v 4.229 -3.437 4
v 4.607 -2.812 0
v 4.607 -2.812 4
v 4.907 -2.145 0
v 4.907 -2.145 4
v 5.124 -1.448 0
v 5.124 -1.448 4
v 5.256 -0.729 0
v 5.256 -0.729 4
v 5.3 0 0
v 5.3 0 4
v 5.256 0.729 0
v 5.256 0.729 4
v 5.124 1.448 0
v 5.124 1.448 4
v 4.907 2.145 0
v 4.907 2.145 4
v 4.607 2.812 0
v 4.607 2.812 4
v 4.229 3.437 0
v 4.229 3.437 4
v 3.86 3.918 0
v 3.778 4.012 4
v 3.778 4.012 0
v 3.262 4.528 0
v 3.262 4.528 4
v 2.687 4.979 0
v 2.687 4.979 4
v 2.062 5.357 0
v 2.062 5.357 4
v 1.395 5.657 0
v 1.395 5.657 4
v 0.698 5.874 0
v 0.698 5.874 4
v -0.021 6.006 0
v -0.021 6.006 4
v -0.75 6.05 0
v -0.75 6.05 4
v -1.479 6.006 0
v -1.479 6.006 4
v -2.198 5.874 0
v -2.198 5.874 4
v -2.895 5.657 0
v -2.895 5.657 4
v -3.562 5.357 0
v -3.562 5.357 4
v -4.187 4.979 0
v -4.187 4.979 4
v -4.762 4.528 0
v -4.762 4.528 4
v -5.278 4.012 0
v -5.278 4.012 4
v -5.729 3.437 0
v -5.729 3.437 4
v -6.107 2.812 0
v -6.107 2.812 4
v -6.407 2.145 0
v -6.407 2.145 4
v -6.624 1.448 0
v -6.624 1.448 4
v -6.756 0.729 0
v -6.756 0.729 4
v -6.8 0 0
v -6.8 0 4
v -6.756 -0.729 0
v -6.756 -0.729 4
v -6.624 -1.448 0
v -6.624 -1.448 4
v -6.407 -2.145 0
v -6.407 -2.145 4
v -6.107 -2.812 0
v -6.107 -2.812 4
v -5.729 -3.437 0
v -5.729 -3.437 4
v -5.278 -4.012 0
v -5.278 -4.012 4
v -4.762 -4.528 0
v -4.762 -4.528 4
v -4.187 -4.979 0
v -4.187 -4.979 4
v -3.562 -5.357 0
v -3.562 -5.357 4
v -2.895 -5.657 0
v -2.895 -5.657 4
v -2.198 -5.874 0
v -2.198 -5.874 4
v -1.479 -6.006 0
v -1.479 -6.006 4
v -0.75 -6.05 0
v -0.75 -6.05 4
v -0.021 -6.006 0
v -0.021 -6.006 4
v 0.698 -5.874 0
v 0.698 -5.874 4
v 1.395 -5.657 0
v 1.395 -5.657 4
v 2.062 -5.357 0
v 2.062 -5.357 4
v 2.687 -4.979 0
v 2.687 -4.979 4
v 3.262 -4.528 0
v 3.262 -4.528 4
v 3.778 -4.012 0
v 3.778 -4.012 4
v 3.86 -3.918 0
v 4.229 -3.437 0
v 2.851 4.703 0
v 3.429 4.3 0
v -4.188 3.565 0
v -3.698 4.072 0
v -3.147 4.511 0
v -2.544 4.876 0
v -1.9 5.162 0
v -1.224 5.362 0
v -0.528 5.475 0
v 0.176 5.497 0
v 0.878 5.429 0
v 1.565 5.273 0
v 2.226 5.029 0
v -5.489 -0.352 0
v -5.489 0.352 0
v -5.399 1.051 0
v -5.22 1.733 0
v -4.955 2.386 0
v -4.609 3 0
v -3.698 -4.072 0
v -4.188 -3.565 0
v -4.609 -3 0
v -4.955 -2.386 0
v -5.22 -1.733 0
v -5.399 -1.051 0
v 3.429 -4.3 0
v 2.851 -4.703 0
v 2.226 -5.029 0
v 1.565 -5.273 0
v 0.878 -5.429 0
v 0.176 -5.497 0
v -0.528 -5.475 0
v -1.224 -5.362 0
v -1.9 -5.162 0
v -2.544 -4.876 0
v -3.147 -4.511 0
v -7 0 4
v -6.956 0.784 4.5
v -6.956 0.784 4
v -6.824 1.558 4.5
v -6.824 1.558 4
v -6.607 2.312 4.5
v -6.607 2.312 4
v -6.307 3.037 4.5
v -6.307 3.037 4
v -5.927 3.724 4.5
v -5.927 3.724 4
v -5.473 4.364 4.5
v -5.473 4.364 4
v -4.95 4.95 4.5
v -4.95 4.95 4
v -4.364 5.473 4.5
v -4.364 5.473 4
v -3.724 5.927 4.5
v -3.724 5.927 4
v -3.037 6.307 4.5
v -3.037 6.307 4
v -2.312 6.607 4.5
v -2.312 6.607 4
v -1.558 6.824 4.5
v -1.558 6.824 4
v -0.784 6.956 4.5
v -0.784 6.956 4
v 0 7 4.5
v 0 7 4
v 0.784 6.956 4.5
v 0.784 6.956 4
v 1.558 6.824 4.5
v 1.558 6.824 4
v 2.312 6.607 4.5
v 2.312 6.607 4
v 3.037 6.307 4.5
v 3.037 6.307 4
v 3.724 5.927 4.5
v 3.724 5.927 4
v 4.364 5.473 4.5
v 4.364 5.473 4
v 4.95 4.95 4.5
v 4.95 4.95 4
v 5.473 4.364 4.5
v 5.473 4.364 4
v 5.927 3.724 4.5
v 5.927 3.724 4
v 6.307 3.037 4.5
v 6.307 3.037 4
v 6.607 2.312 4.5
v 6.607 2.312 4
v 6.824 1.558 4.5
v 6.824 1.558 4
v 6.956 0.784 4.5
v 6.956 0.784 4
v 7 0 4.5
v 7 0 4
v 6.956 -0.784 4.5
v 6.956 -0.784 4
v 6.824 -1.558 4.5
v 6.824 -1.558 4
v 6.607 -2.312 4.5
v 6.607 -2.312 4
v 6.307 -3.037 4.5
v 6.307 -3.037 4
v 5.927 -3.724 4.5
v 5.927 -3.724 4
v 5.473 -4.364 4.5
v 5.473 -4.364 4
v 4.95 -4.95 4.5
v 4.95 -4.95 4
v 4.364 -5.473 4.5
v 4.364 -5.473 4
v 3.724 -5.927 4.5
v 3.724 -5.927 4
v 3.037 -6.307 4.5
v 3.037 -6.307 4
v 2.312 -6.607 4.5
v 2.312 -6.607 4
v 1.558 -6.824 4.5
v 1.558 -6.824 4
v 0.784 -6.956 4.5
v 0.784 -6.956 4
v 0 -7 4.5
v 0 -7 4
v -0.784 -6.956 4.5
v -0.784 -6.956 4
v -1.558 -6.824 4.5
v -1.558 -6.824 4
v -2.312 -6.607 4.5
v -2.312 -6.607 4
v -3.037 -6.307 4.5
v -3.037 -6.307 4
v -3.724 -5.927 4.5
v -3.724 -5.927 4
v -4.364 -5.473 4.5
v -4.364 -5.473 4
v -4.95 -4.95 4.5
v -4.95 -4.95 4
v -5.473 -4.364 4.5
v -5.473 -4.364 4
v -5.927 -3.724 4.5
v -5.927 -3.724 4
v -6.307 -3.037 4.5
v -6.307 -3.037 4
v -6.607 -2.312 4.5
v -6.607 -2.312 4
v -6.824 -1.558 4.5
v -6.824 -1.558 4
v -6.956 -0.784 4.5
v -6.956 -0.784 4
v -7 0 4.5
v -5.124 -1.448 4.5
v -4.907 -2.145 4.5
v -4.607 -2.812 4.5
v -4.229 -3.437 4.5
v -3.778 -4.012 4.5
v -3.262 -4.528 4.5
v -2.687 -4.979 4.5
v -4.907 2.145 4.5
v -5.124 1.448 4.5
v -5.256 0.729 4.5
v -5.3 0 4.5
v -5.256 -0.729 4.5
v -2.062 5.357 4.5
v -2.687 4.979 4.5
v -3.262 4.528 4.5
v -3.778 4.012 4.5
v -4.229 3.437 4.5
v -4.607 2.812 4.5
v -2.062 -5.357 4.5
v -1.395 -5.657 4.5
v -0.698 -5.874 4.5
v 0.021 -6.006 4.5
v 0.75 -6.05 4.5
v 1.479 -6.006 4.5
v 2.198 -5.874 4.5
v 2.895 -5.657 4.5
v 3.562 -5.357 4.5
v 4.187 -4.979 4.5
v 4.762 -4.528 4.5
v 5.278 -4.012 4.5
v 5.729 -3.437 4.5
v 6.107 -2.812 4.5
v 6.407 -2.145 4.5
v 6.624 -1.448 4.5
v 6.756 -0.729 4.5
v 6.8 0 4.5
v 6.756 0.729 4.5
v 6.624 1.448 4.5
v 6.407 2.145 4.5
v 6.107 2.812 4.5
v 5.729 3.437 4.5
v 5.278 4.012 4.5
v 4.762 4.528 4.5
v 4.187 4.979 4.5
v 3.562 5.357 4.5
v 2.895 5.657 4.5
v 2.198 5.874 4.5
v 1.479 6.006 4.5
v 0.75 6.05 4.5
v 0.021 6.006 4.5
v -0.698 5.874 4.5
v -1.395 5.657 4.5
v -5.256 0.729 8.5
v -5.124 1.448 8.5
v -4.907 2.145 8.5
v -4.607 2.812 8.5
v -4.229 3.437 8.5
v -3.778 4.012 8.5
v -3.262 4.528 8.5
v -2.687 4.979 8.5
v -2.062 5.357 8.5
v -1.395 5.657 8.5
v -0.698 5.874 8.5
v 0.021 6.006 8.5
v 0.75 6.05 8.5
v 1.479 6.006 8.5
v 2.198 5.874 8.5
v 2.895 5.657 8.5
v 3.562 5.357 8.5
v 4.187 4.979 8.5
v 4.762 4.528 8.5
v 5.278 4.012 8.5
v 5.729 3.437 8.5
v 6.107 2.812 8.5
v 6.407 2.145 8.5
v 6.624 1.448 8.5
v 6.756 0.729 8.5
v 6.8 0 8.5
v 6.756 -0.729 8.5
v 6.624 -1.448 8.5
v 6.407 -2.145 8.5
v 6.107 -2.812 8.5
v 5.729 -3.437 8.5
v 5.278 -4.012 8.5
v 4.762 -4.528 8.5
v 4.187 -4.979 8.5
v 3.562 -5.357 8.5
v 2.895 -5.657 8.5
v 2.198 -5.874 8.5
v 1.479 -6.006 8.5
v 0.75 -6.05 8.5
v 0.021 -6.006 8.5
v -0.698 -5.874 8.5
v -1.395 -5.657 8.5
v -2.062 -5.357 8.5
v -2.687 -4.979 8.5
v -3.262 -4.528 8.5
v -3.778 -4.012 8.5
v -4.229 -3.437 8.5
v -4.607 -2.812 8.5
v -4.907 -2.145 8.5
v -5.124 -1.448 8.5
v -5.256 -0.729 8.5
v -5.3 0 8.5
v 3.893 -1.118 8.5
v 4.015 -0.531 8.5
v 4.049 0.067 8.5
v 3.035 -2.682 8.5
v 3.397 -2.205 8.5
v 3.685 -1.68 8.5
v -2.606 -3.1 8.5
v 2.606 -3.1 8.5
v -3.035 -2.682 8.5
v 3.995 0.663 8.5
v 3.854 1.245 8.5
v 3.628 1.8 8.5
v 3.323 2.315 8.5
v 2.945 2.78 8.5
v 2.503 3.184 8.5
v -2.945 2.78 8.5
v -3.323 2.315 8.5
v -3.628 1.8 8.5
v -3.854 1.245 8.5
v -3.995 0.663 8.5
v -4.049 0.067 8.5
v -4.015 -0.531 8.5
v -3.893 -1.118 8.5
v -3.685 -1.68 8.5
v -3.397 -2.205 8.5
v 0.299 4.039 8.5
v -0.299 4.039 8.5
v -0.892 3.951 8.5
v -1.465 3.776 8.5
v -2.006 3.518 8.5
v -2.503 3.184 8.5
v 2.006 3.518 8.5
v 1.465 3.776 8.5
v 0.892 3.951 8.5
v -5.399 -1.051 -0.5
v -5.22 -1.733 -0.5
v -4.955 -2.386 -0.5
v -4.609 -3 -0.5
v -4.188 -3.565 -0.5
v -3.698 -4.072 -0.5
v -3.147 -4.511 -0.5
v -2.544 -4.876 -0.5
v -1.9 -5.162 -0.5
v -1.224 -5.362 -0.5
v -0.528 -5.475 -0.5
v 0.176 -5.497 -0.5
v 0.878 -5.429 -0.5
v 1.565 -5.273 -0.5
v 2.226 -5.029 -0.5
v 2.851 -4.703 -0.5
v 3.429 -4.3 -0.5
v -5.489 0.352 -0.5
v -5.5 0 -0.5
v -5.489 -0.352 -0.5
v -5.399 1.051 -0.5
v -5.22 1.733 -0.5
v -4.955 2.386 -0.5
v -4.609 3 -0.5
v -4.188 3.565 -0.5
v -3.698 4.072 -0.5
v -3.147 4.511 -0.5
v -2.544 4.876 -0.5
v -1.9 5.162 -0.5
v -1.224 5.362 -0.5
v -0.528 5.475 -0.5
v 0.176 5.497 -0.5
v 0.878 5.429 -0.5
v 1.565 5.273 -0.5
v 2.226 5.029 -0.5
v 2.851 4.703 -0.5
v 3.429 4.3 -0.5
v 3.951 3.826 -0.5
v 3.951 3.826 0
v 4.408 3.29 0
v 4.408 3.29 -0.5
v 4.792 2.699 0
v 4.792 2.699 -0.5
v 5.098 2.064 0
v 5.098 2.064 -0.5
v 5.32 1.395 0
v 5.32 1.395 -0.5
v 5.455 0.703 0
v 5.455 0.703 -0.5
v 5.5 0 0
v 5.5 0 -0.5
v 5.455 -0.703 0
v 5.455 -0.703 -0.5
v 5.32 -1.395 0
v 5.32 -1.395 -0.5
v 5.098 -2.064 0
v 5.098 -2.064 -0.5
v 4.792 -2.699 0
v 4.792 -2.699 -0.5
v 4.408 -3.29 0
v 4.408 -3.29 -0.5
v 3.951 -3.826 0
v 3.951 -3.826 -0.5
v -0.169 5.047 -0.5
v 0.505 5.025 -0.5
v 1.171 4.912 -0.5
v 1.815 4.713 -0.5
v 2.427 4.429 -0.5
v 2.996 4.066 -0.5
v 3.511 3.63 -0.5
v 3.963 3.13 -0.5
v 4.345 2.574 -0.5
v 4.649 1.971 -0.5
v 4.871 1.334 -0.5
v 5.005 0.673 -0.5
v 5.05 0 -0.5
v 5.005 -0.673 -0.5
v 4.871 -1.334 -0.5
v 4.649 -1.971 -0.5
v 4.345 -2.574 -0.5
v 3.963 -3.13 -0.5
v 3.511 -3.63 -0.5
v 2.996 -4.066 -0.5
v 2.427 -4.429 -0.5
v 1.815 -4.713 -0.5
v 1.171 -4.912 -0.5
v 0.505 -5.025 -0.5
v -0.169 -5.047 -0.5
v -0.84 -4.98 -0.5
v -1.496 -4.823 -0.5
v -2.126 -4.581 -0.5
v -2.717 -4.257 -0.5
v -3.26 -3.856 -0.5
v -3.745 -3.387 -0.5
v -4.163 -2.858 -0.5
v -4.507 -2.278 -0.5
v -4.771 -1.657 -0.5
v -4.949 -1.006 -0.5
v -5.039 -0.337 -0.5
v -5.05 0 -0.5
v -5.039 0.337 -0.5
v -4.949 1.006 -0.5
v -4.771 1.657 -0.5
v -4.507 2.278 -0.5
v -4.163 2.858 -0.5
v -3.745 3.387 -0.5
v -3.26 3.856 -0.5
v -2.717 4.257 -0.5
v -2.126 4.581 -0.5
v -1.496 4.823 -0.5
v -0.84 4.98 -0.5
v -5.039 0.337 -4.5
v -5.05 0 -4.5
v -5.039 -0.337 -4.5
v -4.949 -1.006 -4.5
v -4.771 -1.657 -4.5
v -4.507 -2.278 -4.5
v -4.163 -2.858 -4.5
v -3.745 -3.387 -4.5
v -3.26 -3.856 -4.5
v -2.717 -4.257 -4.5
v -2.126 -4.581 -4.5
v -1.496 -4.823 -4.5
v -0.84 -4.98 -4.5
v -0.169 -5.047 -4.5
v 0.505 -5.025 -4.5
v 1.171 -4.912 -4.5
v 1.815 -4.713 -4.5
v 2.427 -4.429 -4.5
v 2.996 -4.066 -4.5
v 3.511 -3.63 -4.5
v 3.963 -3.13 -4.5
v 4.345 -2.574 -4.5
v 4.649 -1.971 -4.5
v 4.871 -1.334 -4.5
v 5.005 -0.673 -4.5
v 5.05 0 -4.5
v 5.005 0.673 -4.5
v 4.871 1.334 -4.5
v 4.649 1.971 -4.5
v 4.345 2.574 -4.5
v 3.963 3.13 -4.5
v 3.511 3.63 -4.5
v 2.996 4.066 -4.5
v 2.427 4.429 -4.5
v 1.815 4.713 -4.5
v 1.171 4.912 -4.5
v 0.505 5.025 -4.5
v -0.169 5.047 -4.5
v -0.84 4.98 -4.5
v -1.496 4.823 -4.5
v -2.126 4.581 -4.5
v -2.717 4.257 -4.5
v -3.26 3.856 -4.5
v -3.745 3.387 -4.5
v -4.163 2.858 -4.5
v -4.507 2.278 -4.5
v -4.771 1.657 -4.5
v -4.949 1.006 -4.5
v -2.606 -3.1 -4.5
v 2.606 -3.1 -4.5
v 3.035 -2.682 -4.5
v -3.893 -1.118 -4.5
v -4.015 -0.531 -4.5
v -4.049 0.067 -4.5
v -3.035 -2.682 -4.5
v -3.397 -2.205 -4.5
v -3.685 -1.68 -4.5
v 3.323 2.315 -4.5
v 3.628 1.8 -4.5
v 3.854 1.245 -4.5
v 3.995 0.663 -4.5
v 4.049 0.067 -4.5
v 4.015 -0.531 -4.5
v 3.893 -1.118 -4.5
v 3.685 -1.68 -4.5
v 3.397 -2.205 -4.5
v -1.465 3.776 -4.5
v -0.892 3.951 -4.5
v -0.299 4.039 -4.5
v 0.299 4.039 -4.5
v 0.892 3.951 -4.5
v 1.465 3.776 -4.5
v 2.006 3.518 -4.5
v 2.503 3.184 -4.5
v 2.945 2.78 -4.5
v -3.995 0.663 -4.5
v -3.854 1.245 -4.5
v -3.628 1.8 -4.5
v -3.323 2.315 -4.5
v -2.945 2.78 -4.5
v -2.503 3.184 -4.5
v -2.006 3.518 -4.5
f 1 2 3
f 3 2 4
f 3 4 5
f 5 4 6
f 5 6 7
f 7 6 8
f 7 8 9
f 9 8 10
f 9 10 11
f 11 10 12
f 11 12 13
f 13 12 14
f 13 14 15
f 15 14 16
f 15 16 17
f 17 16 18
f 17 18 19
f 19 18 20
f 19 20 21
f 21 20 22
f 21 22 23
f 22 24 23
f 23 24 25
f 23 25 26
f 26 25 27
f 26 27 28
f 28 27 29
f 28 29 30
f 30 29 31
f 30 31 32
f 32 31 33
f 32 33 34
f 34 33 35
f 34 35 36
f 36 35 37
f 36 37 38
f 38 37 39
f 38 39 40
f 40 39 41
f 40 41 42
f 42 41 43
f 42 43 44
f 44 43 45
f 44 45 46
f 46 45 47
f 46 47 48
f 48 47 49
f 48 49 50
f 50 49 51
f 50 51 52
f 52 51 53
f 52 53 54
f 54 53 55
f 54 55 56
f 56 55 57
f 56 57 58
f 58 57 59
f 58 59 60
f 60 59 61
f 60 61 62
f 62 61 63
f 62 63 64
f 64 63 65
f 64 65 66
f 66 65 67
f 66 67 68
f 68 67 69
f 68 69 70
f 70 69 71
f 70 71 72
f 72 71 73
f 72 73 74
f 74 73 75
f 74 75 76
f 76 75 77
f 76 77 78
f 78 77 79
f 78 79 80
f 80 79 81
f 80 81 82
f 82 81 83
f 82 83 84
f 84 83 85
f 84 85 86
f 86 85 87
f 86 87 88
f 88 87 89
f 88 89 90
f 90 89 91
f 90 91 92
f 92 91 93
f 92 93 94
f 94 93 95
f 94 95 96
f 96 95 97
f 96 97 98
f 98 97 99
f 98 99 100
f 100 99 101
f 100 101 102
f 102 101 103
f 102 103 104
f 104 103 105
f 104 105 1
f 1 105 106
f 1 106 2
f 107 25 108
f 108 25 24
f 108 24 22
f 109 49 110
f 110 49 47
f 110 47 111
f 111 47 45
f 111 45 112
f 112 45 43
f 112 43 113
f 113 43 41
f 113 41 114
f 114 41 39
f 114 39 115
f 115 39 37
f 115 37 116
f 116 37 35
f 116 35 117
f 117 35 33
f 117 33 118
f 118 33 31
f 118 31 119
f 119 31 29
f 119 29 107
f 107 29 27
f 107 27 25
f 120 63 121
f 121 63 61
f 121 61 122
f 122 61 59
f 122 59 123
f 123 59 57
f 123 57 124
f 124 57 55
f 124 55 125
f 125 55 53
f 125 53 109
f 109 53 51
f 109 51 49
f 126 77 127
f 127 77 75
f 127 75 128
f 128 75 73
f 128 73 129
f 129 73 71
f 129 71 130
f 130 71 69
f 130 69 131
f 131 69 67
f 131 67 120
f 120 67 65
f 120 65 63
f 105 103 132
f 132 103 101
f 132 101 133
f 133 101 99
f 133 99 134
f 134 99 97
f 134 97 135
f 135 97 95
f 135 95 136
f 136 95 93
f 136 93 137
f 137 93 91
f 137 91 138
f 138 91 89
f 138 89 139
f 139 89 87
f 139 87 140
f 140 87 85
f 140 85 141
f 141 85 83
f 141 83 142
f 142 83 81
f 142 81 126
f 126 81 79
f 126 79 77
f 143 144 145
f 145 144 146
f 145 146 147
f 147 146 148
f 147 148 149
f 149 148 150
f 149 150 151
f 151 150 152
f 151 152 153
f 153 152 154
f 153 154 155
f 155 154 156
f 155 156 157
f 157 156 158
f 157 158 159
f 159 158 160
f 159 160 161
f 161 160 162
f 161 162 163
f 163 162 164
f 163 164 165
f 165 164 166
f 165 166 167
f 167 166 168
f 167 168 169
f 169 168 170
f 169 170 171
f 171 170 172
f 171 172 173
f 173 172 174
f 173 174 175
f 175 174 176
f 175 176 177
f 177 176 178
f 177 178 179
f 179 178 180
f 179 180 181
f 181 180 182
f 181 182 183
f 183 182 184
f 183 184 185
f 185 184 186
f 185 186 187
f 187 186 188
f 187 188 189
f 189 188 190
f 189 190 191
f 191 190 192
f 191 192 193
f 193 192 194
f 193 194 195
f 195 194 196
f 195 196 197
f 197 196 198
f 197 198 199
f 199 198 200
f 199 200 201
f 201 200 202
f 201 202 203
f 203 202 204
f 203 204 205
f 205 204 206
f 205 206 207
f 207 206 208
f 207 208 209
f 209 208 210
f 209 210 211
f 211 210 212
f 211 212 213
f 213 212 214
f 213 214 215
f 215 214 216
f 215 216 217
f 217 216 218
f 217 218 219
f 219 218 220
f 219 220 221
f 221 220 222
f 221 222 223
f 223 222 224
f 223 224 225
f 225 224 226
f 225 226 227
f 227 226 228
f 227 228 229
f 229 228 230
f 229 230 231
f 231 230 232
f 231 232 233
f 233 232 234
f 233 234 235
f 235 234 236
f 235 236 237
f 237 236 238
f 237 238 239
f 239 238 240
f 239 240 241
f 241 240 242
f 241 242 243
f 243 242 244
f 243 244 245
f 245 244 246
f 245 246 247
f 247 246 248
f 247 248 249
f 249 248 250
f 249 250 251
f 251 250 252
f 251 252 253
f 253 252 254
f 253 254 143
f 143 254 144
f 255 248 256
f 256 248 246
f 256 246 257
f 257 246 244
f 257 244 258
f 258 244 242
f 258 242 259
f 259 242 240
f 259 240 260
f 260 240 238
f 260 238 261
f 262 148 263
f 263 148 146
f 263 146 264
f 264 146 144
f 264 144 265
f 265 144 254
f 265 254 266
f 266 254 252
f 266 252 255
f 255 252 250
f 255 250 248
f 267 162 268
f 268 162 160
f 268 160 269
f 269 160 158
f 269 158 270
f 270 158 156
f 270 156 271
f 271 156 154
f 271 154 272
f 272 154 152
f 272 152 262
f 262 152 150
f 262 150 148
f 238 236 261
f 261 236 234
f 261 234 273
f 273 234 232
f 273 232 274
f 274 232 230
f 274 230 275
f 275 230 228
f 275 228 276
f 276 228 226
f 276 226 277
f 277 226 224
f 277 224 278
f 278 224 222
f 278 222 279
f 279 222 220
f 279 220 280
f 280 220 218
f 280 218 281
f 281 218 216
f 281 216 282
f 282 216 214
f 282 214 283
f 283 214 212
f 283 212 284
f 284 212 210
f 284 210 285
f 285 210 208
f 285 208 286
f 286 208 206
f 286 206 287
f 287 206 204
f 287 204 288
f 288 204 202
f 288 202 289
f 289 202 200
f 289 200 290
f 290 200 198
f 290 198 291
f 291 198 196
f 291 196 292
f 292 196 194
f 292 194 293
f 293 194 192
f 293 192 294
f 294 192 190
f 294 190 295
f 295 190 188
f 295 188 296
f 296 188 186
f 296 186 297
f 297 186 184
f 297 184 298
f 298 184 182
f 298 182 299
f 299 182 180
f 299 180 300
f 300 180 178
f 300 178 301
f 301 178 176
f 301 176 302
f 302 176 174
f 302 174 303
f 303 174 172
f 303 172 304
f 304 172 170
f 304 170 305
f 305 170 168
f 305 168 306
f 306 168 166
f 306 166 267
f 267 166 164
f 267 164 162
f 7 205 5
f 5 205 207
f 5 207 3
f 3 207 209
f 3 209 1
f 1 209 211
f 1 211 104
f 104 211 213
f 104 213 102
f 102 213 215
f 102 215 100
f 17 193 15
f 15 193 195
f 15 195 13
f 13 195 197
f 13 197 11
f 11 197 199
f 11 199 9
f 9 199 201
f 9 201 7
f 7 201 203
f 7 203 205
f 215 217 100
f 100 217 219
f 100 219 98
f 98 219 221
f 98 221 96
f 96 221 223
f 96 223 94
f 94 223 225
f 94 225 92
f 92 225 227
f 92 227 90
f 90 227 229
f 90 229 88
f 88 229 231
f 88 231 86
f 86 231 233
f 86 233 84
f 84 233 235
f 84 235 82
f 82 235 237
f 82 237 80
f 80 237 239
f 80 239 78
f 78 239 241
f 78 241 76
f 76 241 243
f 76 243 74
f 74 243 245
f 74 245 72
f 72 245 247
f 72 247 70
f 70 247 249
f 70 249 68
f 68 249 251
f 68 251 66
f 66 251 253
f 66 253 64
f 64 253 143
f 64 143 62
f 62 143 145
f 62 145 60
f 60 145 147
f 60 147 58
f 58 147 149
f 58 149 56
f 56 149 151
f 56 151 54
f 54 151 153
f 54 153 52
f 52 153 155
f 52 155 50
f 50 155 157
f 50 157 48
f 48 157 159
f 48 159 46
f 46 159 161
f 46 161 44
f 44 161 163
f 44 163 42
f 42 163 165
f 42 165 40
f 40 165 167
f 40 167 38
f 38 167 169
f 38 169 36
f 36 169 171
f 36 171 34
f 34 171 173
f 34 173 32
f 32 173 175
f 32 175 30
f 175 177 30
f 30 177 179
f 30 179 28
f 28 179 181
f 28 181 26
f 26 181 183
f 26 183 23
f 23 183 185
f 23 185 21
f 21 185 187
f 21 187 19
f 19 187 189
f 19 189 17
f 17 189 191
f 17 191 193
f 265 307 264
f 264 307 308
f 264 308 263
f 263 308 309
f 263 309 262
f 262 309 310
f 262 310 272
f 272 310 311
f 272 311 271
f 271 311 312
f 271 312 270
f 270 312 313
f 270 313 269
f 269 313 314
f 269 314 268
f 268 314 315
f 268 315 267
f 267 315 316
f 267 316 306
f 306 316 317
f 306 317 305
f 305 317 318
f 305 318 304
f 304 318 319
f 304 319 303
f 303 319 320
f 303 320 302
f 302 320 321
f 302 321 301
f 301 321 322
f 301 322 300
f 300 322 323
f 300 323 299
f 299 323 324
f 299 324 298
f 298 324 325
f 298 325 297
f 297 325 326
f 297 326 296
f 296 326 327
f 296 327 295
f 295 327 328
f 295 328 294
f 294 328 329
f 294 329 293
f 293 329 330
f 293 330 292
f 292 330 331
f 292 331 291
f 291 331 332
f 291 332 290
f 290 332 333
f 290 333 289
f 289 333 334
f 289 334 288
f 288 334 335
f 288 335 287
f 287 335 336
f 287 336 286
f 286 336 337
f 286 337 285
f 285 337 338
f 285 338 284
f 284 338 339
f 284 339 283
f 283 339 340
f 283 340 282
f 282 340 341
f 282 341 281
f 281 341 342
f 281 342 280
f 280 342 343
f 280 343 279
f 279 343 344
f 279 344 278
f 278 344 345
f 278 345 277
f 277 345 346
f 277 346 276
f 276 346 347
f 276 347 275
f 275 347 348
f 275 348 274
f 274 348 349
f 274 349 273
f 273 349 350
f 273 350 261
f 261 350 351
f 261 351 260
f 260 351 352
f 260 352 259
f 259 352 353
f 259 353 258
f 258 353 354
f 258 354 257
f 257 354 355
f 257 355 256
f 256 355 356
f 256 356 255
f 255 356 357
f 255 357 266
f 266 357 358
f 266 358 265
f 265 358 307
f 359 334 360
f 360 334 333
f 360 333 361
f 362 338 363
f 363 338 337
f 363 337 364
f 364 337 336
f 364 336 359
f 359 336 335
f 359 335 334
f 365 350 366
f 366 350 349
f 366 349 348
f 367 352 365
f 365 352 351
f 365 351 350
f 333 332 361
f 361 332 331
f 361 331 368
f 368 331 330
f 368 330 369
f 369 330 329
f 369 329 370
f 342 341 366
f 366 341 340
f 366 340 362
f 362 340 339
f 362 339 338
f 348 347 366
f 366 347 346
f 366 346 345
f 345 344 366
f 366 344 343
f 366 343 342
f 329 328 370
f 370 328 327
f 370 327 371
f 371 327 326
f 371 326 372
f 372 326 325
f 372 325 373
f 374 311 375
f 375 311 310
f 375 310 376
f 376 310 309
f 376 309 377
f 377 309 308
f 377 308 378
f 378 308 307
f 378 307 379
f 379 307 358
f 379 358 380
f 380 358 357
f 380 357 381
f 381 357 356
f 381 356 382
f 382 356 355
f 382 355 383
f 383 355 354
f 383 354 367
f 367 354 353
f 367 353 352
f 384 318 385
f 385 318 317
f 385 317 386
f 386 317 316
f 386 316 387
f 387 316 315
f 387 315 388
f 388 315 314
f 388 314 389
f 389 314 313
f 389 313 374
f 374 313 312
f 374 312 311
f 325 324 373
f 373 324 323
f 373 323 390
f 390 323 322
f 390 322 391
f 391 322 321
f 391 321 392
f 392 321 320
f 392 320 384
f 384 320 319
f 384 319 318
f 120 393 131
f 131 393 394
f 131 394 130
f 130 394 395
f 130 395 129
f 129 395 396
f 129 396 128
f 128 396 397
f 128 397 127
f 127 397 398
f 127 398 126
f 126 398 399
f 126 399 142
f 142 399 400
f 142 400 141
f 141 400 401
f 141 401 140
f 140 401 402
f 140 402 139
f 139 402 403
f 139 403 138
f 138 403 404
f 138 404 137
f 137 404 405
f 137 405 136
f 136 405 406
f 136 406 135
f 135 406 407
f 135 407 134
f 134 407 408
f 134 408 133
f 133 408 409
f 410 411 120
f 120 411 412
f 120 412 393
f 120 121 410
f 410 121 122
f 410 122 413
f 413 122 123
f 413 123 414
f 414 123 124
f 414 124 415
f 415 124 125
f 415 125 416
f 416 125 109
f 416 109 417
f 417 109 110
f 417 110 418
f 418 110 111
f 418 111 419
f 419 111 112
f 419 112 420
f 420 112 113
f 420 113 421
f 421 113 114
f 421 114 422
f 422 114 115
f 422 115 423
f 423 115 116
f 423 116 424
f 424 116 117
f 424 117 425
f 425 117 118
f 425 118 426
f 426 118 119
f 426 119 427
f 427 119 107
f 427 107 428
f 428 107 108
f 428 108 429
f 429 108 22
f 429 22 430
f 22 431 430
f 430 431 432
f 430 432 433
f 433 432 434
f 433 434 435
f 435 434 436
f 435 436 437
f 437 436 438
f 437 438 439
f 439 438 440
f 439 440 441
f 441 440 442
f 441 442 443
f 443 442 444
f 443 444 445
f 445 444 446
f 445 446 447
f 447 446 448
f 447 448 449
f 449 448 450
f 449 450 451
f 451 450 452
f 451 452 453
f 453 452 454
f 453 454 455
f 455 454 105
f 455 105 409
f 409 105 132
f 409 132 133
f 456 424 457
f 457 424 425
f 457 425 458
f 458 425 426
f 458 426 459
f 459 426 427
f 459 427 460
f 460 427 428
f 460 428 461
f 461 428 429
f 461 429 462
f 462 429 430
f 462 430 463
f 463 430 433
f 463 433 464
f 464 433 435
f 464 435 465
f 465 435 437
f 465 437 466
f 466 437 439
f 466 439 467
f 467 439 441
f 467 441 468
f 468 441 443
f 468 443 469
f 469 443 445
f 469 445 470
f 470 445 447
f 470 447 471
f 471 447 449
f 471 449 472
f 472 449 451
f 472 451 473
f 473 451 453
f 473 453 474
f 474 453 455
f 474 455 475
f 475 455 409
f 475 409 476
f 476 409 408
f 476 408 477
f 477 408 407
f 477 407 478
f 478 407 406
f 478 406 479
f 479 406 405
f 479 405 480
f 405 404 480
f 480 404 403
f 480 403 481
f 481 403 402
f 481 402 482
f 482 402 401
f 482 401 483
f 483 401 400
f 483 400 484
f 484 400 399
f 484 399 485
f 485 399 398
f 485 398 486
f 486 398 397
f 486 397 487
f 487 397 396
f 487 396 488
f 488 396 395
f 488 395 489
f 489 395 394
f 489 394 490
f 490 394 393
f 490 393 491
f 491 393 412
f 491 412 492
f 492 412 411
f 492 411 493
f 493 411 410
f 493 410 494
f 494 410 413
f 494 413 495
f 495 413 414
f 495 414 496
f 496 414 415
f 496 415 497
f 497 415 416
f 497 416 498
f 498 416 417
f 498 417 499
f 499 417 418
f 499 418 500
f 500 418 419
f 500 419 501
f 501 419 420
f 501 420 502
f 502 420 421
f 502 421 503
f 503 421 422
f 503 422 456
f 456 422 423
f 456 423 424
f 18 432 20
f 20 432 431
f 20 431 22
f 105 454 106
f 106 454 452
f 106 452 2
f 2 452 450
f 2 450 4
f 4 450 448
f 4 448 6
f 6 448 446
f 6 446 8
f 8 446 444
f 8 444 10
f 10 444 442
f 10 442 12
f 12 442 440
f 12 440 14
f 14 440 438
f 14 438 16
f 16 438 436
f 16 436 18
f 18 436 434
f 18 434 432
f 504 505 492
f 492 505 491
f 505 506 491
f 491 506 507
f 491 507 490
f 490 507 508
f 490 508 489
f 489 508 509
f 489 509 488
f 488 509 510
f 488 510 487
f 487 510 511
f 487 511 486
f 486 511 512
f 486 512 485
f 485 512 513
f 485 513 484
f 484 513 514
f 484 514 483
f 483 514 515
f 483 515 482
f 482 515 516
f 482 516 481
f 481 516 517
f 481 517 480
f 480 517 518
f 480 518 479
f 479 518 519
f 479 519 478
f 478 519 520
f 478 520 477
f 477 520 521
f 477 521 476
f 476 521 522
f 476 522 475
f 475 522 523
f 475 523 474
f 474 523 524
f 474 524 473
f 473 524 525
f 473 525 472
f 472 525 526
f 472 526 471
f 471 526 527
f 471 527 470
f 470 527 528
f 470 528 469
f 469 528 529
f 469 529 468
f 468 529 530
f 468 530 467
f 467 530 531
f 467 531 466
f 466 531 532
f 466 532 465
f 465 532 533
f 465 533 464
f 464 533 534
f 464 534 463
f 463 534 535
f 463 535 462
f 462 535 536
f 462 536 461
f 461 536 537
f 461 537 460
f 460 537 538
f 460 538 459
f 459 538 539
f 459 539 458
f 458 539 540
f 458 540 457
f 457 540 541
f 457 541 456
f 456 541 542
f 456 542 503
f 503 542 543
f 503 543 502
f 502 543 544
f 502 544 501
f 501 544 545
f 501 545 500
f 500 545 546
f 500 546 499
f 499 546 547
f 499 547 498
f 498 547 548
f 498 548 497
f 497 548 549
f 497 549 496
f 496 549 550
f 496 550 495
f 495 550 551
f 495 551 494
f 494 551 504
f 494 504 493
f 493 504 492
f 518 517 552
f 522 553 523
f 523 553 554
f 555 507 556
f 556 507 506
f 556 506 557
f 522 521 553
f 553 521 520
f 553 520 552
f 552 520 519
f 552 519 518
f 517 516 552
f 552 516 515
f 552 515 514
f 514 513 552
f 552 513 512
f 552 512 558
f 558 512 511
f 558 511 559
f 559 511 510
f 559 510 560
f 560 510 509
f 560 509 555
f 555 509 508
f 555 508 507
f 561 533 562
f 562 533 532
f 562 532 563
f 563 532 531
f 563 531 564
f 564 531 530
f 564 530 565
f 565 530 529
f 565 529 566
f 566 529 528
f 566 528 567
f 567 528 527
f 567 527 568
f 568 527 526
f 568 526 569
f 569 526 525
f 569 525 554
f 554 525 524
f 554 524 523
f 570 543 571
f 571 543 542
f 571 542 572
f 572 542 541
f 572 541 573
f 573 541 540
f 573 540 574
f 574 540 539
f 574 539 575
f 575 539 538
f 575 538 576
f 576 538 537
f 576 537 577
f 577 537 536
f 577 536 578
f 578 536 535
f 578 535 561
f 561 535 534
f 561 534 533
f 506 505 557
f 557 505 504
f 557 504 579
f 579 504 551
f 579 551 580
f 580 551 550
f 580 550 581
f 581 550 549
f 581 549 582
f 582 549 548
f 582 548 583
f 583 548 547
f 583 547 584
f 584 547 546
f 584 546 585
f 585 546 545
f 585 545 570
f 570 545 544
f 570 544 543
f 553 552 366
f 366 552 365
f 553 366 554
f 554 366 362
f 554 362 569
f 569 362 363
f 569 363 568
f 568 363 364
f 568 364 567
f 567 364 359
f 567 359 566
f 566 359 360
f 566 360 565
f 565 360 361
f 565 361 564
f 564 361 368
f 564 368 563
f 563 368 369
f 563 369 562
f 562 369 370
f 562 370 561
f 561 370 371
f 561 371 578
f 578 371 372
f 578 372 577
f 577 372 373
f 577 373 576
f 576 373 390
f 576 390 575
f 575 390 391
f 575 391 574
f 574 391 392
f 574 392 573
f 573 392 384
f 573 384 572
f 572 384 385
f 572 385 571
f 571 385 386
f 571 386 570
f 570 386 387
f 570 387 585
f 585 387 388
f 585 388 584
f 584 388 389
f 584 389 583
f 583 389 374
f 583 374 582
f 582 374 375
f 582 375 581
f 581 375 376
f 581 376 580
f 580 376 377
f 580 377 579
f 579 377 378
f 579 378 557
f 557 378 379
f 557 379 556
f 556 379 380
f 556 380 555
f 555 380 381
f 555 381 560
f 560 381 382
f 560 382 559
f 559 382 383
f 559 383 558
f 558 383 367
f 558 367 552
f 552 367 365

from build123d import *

# Parameters (mm, degrees)
SKETCH_1_R          = 6.05
EXTRUDE_1_DEPTH     = 4
SKETCH_2_R          = 7
EXTRUDE_2_DEPTH     = 0.5
SKETCH_3_R          = 6.05
EXTRUDE_3_DEPTH     = 4
SKETCH_5_R          = 5.5
EXTRUDE_4_DEPTH     = 0.5
SKETCH_6_R          = 5.05
EXTRUDE_5_DEPTH     = 4
CUT_EXTRUDE_1_DEPTH = 14


with BuildPart() as part:
    # 草图1 → 凸台-拉伸1 (new body)
    with BuildSketch(Plane.XY):
        with Locations((-0.75, 0)):
            Circle(SKETCH_1_R)
    extrude(amount=EXTRUDE_1_DEPTH)

    # 草图2 → 凸台-拉伸2 (add)
    with BuildSketch(Plane.XY.offset(4)):
        Circle(SKETCH_2_R)
    extrude(amount=EXTRUDE_2_DEPTH)

    # 草图3 → 凸台-拉伸3 (add)
    with BuildSketch(Plane.XY.offset(4.5)):
        with Locations((0.75, 0)):
            Circle(SKETCH_3_R)
    extrude(amount=EXTRUDE_3_DEPTH)

    # 草图5 → 凸台-拉伸4 (add)
    with BuildSketch(Plane(origin=(0, 0, 0), x_dir=(-1, 0, 0), z_dir=(0, 0, -1))):
        Circle(SKETCH_5_R)
    extrude(amount=EXTRUDE_4_DEPTH)

    # 草图6 → 凸台-拉伸5 (add)
    with BuildSketch(Plane(origin=(0, 0, -0.5), x_dir=(-1, 0, 0), z_dir=(0, 0, -1))):
        Circle(SKETCH_6_R)
    extrude(amount=EXTRUDE_5_DEPTH)

    # 草图4 → 切除-拉伸1 (cut, through all)
    with BuildSketch(Plane.XY.offset(8.5)):
        with BuildLine():
            ThreePointArc((4.05, 0), (-1.709856405, 3.671360929), (-2.606242506, -3.1))
            Line((-2.606242506, -3.1), (2.606242506, -3.1))
            ThreePointArc((2.606242506, -3.1), (3.671360929, -1.709856405), (4.05, 0))
        make_face()
    extrude(amount=-CUT_EXTRUDE_1_DEPTH, mode=Mode.SUBTRACT)


solid = part.part
